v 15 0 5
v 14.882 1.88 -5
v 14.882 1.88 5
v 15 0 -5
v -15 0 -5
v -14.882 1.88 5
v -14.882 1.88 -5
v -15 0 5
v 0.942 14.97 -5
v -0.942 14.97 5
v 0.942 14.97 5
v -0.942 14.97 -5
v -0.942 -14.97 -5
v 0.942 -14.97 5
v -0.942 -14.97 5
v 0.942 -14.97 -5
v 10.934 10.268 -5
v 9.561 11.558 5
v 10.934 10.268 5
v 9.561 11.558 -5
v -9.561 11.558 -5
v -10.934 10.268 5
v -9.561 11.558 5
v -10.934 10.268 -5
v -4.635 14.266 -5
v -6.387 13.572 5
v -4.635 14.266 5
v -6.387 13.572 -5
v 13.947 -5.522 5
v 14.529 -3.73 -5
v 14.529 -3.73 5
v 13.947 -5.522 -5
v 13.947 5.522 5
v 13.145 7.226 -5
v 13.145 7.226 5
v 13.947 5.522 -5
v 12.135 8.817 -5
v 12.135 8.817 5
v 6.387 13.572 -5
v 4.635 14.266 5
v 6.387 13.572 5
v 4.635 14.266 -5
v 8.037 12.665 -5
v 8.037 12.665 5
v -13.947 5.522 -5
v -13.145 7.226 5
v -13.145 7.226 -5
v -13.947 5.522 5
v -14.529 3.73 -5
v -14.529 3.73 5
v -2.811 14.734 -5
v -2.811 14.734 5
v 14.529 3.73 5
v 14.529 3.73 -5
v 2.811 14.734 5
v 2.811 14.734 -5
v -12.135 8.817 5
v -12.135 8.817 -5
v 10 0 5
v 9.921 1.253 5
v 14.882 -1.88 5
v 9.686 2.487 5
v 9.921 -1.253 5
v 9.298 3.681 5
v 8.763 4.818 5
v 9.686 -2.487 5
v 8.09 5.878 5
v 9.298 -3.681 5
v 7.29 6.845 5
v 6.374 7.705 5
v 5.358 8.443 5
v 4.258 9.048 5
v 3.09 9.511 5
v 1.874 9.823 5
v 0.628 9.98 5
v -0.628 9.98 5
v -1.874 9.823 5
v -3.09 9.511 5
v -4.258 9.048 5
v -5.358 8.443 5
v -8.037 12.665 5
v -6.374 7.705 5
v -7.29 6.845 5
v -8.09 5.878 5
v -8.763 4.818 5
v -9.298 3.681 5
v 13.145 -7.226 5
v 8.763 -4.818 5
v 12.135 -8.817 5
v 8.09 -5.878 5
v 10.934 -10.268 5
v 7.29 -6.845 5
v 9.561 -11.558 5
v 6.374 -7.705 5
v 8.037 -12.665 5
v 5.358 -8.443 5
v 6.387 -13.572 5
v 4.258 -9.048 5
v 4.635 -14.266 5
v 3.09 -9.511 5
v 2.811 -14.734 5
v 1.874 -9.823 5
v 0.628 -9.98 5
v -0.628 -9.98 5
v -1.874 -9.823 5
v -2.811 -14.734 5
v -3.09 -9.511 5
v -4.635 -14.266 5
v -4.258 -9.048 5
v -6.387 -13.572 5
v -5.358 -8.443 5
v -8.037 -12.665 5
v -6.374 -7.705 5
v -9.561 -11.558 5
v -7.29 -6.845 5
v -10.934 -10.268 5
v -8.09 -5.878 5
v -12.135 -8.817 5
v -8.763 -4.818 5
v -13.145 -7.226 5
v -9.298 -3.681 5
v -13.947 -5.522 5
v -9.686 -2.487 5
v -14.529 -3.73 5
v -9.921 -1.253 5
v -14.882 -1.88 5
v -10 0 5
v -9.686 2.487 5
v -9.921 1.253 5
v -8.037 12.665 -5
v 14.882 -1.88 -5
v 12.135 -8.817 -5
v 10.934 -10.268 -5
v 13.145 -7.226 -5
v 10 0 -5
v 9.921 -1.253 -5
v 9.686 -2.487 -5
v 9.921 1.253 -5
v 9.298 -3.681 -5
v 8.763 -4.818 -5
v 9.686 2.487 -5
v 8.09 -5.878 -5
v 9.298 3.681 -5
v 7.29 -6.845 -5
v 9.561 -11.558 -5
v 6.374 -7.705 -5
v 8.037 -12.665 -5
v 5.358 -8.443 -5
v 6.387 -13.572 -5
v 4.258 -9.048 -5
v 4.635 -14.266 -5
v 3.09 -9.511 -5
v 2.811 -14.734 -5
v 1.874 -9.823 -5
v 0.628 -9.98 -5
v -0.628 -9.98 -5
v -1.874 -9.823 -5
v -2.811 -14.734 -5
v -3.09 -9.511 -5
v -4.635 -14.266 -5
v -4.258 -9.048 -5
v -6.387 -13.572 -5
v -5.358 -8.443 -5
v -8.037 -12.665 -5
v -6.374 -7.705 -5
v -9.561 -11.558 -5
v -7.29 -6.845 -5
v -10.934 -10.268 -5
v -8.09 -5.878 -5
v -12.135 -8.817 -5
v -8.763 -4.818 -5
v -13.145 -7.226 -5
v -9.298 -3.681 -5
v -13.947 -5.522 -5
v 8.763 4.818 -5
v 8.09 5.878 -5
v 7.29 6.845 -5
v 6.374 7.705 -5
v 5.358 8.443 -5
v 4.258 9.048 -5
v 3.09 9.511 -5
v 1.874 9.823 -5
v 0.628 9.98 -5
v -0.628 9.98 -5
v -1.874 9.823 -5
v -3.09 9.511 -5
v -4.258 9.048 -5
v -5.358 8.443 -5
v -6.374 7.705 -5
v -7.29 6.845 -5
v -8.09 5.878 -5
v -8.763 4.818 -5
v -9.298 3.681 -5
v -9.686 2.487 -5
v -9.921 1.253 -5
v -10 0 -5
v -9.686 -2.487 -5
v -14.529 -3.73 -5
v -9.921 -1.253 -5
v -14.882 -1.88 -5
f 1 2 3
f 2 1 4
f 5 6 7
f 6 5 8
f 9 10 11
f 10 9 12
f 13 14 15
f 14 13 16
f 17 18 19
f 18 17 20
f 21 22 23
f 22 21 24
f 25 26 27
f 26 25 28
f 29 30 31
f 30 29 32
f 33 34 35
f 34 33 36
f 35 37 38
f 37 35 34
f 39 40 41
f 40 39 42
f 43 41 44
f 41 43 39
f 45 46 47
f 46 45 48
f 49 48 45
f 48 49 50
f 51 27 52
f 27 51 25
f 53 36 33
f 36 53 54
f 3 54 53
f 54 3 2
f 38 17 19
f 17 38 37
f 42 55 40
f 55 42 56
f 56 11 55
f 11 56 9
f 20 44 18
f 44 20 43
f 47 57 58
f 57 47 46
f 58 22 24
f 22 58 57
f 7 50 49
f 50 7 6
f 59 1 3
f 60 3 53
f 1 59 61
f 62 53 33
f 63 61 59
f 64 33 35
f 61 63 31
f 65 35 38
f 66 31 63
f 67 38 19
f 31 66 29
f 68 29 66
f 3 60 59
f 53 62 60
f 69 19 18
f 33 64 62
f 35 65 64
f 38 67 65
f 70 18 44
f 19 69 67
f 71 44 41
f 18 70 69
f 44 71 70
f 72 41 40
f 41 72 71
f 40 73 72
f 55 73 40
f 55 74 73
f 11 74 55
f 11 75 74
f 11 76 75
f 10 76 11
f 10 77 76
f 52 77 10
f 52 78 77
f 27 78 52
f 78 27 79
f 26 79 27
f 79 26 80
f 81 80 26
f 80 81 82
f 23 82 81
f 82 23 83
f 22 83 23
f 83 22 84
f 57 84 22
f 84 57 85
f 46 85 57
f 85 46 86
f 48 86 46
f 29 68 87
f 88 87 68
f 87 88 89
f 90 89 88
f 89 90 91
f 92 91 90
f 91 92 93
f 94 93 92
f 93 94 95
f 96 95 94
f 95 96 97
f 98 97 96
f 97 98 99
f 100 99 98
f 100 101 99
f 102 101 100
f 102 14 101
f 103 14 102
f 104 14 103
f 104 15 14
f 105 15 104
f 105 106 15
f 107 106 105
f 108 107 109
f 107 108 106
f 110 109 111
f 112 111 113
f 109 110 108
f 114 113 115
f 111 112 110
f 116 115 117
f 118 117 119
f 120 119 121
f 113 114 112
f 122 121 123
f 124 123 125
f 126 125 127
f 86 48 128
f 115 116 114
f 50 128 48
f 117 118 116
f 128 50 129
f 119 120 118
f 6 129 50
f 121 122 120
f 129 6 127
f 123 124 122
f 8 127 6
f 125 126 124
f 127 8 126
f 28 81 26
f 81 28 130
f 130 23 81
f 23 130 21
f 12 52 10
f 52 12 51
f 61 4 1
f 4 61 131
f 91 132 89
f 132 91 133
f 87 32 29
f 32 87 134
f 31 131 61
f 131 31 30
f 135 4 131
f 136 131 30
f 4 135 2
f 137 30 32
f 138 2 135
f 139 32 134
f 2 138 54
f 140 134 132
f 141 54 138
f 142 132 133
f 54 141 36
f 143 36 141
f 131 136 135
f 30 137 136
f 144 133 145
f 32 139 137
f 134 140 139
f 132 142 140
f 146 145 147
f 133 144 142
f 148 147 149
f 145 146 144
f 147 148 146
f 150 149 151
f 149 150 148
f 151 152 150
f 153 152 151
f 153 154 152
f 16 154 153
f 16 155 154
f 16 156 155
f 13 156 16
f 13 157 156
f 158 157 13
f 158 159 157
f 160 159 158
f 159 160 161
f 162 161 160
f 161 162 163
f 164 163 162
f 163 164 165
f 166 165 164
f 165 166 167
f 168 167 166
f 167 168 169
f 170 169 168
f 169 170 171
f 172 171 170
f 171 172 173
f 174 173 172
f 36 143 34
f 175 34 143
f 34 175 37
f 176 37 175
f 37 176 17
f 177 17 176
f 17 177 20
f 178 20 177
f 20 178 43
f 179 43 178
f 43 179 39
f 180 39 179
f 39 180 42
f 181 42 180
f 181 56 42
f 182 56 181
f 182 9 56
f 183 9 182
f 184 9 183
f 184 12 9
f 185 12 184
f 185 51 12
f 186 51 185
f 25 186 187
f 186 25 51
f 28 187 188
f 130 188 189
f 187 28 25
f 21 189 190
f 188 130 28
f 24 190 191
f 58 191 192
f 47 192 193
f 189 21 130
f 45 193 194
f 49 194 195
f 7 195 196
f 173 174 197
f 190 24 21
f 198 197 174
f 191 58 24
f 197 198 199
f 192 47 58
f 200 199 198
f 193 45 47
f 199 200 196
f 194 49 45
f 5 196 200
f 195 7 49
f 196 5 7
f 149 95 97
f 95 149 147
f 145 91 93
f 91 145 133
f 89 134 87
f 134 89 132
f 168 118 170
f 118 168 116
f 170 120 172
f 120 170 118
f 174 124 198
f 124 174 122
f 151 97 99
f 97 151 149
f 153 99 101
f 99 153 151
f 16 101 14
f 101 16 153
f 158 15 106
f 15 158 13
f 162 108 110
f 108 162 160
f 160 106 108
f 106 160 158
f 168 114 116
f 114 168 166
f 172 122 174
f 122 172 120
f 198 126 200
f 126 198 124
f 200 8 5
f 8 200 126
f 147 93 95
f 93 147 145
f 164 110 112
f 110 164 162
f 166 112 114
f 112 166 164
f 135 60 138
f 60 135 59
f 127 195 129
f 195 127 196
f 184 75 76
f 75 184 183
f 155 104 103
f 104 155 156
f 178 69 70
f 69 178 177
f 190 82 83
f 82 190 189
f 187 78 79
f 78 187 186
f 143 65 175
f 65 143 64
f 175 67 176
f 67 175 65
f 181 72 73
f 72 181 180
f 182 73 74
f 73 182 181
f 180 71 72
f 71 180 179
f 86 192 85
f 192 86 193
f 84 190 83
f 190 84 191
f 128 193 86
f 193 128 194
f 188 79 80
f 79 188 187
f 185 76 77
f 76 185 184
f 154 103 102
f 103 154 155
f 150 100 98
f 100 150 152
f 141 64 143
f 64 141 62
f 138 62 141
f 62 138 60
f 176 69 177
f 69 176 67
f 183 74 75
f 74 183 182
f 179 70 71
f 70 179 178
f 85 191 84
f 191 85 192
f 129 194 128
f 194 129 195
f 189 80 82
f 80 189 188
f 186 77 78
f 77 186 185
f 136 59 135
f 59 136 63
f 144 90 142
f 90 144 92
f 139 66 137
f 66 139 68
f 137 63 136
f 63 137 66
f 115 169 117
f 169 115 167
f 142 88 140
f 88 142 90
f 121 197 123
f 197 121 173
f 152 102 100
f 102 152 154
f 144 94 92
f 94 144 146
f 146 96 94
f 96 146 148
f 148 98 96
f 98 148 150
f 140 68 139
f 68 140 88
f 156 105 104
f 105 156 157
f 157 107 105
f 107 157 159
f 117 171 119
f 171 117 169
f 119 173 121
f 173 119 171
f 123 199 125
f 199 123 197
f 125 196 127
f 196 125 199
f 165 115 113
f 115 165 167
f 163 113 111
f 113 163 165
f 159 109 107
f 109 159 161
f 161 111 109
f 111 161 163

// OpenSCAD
$fn = 50;


difference() {
	union() {
		translate(v = [0, 0, -5.0000000000]) {
			cylinder(h = 10, r = 15.0000000000);
		}
	}
	union() {
		translate(v = [0, 0, -100.0000000000]) {
			cylinder(h = 200, r = 10);
		}
	}
}
